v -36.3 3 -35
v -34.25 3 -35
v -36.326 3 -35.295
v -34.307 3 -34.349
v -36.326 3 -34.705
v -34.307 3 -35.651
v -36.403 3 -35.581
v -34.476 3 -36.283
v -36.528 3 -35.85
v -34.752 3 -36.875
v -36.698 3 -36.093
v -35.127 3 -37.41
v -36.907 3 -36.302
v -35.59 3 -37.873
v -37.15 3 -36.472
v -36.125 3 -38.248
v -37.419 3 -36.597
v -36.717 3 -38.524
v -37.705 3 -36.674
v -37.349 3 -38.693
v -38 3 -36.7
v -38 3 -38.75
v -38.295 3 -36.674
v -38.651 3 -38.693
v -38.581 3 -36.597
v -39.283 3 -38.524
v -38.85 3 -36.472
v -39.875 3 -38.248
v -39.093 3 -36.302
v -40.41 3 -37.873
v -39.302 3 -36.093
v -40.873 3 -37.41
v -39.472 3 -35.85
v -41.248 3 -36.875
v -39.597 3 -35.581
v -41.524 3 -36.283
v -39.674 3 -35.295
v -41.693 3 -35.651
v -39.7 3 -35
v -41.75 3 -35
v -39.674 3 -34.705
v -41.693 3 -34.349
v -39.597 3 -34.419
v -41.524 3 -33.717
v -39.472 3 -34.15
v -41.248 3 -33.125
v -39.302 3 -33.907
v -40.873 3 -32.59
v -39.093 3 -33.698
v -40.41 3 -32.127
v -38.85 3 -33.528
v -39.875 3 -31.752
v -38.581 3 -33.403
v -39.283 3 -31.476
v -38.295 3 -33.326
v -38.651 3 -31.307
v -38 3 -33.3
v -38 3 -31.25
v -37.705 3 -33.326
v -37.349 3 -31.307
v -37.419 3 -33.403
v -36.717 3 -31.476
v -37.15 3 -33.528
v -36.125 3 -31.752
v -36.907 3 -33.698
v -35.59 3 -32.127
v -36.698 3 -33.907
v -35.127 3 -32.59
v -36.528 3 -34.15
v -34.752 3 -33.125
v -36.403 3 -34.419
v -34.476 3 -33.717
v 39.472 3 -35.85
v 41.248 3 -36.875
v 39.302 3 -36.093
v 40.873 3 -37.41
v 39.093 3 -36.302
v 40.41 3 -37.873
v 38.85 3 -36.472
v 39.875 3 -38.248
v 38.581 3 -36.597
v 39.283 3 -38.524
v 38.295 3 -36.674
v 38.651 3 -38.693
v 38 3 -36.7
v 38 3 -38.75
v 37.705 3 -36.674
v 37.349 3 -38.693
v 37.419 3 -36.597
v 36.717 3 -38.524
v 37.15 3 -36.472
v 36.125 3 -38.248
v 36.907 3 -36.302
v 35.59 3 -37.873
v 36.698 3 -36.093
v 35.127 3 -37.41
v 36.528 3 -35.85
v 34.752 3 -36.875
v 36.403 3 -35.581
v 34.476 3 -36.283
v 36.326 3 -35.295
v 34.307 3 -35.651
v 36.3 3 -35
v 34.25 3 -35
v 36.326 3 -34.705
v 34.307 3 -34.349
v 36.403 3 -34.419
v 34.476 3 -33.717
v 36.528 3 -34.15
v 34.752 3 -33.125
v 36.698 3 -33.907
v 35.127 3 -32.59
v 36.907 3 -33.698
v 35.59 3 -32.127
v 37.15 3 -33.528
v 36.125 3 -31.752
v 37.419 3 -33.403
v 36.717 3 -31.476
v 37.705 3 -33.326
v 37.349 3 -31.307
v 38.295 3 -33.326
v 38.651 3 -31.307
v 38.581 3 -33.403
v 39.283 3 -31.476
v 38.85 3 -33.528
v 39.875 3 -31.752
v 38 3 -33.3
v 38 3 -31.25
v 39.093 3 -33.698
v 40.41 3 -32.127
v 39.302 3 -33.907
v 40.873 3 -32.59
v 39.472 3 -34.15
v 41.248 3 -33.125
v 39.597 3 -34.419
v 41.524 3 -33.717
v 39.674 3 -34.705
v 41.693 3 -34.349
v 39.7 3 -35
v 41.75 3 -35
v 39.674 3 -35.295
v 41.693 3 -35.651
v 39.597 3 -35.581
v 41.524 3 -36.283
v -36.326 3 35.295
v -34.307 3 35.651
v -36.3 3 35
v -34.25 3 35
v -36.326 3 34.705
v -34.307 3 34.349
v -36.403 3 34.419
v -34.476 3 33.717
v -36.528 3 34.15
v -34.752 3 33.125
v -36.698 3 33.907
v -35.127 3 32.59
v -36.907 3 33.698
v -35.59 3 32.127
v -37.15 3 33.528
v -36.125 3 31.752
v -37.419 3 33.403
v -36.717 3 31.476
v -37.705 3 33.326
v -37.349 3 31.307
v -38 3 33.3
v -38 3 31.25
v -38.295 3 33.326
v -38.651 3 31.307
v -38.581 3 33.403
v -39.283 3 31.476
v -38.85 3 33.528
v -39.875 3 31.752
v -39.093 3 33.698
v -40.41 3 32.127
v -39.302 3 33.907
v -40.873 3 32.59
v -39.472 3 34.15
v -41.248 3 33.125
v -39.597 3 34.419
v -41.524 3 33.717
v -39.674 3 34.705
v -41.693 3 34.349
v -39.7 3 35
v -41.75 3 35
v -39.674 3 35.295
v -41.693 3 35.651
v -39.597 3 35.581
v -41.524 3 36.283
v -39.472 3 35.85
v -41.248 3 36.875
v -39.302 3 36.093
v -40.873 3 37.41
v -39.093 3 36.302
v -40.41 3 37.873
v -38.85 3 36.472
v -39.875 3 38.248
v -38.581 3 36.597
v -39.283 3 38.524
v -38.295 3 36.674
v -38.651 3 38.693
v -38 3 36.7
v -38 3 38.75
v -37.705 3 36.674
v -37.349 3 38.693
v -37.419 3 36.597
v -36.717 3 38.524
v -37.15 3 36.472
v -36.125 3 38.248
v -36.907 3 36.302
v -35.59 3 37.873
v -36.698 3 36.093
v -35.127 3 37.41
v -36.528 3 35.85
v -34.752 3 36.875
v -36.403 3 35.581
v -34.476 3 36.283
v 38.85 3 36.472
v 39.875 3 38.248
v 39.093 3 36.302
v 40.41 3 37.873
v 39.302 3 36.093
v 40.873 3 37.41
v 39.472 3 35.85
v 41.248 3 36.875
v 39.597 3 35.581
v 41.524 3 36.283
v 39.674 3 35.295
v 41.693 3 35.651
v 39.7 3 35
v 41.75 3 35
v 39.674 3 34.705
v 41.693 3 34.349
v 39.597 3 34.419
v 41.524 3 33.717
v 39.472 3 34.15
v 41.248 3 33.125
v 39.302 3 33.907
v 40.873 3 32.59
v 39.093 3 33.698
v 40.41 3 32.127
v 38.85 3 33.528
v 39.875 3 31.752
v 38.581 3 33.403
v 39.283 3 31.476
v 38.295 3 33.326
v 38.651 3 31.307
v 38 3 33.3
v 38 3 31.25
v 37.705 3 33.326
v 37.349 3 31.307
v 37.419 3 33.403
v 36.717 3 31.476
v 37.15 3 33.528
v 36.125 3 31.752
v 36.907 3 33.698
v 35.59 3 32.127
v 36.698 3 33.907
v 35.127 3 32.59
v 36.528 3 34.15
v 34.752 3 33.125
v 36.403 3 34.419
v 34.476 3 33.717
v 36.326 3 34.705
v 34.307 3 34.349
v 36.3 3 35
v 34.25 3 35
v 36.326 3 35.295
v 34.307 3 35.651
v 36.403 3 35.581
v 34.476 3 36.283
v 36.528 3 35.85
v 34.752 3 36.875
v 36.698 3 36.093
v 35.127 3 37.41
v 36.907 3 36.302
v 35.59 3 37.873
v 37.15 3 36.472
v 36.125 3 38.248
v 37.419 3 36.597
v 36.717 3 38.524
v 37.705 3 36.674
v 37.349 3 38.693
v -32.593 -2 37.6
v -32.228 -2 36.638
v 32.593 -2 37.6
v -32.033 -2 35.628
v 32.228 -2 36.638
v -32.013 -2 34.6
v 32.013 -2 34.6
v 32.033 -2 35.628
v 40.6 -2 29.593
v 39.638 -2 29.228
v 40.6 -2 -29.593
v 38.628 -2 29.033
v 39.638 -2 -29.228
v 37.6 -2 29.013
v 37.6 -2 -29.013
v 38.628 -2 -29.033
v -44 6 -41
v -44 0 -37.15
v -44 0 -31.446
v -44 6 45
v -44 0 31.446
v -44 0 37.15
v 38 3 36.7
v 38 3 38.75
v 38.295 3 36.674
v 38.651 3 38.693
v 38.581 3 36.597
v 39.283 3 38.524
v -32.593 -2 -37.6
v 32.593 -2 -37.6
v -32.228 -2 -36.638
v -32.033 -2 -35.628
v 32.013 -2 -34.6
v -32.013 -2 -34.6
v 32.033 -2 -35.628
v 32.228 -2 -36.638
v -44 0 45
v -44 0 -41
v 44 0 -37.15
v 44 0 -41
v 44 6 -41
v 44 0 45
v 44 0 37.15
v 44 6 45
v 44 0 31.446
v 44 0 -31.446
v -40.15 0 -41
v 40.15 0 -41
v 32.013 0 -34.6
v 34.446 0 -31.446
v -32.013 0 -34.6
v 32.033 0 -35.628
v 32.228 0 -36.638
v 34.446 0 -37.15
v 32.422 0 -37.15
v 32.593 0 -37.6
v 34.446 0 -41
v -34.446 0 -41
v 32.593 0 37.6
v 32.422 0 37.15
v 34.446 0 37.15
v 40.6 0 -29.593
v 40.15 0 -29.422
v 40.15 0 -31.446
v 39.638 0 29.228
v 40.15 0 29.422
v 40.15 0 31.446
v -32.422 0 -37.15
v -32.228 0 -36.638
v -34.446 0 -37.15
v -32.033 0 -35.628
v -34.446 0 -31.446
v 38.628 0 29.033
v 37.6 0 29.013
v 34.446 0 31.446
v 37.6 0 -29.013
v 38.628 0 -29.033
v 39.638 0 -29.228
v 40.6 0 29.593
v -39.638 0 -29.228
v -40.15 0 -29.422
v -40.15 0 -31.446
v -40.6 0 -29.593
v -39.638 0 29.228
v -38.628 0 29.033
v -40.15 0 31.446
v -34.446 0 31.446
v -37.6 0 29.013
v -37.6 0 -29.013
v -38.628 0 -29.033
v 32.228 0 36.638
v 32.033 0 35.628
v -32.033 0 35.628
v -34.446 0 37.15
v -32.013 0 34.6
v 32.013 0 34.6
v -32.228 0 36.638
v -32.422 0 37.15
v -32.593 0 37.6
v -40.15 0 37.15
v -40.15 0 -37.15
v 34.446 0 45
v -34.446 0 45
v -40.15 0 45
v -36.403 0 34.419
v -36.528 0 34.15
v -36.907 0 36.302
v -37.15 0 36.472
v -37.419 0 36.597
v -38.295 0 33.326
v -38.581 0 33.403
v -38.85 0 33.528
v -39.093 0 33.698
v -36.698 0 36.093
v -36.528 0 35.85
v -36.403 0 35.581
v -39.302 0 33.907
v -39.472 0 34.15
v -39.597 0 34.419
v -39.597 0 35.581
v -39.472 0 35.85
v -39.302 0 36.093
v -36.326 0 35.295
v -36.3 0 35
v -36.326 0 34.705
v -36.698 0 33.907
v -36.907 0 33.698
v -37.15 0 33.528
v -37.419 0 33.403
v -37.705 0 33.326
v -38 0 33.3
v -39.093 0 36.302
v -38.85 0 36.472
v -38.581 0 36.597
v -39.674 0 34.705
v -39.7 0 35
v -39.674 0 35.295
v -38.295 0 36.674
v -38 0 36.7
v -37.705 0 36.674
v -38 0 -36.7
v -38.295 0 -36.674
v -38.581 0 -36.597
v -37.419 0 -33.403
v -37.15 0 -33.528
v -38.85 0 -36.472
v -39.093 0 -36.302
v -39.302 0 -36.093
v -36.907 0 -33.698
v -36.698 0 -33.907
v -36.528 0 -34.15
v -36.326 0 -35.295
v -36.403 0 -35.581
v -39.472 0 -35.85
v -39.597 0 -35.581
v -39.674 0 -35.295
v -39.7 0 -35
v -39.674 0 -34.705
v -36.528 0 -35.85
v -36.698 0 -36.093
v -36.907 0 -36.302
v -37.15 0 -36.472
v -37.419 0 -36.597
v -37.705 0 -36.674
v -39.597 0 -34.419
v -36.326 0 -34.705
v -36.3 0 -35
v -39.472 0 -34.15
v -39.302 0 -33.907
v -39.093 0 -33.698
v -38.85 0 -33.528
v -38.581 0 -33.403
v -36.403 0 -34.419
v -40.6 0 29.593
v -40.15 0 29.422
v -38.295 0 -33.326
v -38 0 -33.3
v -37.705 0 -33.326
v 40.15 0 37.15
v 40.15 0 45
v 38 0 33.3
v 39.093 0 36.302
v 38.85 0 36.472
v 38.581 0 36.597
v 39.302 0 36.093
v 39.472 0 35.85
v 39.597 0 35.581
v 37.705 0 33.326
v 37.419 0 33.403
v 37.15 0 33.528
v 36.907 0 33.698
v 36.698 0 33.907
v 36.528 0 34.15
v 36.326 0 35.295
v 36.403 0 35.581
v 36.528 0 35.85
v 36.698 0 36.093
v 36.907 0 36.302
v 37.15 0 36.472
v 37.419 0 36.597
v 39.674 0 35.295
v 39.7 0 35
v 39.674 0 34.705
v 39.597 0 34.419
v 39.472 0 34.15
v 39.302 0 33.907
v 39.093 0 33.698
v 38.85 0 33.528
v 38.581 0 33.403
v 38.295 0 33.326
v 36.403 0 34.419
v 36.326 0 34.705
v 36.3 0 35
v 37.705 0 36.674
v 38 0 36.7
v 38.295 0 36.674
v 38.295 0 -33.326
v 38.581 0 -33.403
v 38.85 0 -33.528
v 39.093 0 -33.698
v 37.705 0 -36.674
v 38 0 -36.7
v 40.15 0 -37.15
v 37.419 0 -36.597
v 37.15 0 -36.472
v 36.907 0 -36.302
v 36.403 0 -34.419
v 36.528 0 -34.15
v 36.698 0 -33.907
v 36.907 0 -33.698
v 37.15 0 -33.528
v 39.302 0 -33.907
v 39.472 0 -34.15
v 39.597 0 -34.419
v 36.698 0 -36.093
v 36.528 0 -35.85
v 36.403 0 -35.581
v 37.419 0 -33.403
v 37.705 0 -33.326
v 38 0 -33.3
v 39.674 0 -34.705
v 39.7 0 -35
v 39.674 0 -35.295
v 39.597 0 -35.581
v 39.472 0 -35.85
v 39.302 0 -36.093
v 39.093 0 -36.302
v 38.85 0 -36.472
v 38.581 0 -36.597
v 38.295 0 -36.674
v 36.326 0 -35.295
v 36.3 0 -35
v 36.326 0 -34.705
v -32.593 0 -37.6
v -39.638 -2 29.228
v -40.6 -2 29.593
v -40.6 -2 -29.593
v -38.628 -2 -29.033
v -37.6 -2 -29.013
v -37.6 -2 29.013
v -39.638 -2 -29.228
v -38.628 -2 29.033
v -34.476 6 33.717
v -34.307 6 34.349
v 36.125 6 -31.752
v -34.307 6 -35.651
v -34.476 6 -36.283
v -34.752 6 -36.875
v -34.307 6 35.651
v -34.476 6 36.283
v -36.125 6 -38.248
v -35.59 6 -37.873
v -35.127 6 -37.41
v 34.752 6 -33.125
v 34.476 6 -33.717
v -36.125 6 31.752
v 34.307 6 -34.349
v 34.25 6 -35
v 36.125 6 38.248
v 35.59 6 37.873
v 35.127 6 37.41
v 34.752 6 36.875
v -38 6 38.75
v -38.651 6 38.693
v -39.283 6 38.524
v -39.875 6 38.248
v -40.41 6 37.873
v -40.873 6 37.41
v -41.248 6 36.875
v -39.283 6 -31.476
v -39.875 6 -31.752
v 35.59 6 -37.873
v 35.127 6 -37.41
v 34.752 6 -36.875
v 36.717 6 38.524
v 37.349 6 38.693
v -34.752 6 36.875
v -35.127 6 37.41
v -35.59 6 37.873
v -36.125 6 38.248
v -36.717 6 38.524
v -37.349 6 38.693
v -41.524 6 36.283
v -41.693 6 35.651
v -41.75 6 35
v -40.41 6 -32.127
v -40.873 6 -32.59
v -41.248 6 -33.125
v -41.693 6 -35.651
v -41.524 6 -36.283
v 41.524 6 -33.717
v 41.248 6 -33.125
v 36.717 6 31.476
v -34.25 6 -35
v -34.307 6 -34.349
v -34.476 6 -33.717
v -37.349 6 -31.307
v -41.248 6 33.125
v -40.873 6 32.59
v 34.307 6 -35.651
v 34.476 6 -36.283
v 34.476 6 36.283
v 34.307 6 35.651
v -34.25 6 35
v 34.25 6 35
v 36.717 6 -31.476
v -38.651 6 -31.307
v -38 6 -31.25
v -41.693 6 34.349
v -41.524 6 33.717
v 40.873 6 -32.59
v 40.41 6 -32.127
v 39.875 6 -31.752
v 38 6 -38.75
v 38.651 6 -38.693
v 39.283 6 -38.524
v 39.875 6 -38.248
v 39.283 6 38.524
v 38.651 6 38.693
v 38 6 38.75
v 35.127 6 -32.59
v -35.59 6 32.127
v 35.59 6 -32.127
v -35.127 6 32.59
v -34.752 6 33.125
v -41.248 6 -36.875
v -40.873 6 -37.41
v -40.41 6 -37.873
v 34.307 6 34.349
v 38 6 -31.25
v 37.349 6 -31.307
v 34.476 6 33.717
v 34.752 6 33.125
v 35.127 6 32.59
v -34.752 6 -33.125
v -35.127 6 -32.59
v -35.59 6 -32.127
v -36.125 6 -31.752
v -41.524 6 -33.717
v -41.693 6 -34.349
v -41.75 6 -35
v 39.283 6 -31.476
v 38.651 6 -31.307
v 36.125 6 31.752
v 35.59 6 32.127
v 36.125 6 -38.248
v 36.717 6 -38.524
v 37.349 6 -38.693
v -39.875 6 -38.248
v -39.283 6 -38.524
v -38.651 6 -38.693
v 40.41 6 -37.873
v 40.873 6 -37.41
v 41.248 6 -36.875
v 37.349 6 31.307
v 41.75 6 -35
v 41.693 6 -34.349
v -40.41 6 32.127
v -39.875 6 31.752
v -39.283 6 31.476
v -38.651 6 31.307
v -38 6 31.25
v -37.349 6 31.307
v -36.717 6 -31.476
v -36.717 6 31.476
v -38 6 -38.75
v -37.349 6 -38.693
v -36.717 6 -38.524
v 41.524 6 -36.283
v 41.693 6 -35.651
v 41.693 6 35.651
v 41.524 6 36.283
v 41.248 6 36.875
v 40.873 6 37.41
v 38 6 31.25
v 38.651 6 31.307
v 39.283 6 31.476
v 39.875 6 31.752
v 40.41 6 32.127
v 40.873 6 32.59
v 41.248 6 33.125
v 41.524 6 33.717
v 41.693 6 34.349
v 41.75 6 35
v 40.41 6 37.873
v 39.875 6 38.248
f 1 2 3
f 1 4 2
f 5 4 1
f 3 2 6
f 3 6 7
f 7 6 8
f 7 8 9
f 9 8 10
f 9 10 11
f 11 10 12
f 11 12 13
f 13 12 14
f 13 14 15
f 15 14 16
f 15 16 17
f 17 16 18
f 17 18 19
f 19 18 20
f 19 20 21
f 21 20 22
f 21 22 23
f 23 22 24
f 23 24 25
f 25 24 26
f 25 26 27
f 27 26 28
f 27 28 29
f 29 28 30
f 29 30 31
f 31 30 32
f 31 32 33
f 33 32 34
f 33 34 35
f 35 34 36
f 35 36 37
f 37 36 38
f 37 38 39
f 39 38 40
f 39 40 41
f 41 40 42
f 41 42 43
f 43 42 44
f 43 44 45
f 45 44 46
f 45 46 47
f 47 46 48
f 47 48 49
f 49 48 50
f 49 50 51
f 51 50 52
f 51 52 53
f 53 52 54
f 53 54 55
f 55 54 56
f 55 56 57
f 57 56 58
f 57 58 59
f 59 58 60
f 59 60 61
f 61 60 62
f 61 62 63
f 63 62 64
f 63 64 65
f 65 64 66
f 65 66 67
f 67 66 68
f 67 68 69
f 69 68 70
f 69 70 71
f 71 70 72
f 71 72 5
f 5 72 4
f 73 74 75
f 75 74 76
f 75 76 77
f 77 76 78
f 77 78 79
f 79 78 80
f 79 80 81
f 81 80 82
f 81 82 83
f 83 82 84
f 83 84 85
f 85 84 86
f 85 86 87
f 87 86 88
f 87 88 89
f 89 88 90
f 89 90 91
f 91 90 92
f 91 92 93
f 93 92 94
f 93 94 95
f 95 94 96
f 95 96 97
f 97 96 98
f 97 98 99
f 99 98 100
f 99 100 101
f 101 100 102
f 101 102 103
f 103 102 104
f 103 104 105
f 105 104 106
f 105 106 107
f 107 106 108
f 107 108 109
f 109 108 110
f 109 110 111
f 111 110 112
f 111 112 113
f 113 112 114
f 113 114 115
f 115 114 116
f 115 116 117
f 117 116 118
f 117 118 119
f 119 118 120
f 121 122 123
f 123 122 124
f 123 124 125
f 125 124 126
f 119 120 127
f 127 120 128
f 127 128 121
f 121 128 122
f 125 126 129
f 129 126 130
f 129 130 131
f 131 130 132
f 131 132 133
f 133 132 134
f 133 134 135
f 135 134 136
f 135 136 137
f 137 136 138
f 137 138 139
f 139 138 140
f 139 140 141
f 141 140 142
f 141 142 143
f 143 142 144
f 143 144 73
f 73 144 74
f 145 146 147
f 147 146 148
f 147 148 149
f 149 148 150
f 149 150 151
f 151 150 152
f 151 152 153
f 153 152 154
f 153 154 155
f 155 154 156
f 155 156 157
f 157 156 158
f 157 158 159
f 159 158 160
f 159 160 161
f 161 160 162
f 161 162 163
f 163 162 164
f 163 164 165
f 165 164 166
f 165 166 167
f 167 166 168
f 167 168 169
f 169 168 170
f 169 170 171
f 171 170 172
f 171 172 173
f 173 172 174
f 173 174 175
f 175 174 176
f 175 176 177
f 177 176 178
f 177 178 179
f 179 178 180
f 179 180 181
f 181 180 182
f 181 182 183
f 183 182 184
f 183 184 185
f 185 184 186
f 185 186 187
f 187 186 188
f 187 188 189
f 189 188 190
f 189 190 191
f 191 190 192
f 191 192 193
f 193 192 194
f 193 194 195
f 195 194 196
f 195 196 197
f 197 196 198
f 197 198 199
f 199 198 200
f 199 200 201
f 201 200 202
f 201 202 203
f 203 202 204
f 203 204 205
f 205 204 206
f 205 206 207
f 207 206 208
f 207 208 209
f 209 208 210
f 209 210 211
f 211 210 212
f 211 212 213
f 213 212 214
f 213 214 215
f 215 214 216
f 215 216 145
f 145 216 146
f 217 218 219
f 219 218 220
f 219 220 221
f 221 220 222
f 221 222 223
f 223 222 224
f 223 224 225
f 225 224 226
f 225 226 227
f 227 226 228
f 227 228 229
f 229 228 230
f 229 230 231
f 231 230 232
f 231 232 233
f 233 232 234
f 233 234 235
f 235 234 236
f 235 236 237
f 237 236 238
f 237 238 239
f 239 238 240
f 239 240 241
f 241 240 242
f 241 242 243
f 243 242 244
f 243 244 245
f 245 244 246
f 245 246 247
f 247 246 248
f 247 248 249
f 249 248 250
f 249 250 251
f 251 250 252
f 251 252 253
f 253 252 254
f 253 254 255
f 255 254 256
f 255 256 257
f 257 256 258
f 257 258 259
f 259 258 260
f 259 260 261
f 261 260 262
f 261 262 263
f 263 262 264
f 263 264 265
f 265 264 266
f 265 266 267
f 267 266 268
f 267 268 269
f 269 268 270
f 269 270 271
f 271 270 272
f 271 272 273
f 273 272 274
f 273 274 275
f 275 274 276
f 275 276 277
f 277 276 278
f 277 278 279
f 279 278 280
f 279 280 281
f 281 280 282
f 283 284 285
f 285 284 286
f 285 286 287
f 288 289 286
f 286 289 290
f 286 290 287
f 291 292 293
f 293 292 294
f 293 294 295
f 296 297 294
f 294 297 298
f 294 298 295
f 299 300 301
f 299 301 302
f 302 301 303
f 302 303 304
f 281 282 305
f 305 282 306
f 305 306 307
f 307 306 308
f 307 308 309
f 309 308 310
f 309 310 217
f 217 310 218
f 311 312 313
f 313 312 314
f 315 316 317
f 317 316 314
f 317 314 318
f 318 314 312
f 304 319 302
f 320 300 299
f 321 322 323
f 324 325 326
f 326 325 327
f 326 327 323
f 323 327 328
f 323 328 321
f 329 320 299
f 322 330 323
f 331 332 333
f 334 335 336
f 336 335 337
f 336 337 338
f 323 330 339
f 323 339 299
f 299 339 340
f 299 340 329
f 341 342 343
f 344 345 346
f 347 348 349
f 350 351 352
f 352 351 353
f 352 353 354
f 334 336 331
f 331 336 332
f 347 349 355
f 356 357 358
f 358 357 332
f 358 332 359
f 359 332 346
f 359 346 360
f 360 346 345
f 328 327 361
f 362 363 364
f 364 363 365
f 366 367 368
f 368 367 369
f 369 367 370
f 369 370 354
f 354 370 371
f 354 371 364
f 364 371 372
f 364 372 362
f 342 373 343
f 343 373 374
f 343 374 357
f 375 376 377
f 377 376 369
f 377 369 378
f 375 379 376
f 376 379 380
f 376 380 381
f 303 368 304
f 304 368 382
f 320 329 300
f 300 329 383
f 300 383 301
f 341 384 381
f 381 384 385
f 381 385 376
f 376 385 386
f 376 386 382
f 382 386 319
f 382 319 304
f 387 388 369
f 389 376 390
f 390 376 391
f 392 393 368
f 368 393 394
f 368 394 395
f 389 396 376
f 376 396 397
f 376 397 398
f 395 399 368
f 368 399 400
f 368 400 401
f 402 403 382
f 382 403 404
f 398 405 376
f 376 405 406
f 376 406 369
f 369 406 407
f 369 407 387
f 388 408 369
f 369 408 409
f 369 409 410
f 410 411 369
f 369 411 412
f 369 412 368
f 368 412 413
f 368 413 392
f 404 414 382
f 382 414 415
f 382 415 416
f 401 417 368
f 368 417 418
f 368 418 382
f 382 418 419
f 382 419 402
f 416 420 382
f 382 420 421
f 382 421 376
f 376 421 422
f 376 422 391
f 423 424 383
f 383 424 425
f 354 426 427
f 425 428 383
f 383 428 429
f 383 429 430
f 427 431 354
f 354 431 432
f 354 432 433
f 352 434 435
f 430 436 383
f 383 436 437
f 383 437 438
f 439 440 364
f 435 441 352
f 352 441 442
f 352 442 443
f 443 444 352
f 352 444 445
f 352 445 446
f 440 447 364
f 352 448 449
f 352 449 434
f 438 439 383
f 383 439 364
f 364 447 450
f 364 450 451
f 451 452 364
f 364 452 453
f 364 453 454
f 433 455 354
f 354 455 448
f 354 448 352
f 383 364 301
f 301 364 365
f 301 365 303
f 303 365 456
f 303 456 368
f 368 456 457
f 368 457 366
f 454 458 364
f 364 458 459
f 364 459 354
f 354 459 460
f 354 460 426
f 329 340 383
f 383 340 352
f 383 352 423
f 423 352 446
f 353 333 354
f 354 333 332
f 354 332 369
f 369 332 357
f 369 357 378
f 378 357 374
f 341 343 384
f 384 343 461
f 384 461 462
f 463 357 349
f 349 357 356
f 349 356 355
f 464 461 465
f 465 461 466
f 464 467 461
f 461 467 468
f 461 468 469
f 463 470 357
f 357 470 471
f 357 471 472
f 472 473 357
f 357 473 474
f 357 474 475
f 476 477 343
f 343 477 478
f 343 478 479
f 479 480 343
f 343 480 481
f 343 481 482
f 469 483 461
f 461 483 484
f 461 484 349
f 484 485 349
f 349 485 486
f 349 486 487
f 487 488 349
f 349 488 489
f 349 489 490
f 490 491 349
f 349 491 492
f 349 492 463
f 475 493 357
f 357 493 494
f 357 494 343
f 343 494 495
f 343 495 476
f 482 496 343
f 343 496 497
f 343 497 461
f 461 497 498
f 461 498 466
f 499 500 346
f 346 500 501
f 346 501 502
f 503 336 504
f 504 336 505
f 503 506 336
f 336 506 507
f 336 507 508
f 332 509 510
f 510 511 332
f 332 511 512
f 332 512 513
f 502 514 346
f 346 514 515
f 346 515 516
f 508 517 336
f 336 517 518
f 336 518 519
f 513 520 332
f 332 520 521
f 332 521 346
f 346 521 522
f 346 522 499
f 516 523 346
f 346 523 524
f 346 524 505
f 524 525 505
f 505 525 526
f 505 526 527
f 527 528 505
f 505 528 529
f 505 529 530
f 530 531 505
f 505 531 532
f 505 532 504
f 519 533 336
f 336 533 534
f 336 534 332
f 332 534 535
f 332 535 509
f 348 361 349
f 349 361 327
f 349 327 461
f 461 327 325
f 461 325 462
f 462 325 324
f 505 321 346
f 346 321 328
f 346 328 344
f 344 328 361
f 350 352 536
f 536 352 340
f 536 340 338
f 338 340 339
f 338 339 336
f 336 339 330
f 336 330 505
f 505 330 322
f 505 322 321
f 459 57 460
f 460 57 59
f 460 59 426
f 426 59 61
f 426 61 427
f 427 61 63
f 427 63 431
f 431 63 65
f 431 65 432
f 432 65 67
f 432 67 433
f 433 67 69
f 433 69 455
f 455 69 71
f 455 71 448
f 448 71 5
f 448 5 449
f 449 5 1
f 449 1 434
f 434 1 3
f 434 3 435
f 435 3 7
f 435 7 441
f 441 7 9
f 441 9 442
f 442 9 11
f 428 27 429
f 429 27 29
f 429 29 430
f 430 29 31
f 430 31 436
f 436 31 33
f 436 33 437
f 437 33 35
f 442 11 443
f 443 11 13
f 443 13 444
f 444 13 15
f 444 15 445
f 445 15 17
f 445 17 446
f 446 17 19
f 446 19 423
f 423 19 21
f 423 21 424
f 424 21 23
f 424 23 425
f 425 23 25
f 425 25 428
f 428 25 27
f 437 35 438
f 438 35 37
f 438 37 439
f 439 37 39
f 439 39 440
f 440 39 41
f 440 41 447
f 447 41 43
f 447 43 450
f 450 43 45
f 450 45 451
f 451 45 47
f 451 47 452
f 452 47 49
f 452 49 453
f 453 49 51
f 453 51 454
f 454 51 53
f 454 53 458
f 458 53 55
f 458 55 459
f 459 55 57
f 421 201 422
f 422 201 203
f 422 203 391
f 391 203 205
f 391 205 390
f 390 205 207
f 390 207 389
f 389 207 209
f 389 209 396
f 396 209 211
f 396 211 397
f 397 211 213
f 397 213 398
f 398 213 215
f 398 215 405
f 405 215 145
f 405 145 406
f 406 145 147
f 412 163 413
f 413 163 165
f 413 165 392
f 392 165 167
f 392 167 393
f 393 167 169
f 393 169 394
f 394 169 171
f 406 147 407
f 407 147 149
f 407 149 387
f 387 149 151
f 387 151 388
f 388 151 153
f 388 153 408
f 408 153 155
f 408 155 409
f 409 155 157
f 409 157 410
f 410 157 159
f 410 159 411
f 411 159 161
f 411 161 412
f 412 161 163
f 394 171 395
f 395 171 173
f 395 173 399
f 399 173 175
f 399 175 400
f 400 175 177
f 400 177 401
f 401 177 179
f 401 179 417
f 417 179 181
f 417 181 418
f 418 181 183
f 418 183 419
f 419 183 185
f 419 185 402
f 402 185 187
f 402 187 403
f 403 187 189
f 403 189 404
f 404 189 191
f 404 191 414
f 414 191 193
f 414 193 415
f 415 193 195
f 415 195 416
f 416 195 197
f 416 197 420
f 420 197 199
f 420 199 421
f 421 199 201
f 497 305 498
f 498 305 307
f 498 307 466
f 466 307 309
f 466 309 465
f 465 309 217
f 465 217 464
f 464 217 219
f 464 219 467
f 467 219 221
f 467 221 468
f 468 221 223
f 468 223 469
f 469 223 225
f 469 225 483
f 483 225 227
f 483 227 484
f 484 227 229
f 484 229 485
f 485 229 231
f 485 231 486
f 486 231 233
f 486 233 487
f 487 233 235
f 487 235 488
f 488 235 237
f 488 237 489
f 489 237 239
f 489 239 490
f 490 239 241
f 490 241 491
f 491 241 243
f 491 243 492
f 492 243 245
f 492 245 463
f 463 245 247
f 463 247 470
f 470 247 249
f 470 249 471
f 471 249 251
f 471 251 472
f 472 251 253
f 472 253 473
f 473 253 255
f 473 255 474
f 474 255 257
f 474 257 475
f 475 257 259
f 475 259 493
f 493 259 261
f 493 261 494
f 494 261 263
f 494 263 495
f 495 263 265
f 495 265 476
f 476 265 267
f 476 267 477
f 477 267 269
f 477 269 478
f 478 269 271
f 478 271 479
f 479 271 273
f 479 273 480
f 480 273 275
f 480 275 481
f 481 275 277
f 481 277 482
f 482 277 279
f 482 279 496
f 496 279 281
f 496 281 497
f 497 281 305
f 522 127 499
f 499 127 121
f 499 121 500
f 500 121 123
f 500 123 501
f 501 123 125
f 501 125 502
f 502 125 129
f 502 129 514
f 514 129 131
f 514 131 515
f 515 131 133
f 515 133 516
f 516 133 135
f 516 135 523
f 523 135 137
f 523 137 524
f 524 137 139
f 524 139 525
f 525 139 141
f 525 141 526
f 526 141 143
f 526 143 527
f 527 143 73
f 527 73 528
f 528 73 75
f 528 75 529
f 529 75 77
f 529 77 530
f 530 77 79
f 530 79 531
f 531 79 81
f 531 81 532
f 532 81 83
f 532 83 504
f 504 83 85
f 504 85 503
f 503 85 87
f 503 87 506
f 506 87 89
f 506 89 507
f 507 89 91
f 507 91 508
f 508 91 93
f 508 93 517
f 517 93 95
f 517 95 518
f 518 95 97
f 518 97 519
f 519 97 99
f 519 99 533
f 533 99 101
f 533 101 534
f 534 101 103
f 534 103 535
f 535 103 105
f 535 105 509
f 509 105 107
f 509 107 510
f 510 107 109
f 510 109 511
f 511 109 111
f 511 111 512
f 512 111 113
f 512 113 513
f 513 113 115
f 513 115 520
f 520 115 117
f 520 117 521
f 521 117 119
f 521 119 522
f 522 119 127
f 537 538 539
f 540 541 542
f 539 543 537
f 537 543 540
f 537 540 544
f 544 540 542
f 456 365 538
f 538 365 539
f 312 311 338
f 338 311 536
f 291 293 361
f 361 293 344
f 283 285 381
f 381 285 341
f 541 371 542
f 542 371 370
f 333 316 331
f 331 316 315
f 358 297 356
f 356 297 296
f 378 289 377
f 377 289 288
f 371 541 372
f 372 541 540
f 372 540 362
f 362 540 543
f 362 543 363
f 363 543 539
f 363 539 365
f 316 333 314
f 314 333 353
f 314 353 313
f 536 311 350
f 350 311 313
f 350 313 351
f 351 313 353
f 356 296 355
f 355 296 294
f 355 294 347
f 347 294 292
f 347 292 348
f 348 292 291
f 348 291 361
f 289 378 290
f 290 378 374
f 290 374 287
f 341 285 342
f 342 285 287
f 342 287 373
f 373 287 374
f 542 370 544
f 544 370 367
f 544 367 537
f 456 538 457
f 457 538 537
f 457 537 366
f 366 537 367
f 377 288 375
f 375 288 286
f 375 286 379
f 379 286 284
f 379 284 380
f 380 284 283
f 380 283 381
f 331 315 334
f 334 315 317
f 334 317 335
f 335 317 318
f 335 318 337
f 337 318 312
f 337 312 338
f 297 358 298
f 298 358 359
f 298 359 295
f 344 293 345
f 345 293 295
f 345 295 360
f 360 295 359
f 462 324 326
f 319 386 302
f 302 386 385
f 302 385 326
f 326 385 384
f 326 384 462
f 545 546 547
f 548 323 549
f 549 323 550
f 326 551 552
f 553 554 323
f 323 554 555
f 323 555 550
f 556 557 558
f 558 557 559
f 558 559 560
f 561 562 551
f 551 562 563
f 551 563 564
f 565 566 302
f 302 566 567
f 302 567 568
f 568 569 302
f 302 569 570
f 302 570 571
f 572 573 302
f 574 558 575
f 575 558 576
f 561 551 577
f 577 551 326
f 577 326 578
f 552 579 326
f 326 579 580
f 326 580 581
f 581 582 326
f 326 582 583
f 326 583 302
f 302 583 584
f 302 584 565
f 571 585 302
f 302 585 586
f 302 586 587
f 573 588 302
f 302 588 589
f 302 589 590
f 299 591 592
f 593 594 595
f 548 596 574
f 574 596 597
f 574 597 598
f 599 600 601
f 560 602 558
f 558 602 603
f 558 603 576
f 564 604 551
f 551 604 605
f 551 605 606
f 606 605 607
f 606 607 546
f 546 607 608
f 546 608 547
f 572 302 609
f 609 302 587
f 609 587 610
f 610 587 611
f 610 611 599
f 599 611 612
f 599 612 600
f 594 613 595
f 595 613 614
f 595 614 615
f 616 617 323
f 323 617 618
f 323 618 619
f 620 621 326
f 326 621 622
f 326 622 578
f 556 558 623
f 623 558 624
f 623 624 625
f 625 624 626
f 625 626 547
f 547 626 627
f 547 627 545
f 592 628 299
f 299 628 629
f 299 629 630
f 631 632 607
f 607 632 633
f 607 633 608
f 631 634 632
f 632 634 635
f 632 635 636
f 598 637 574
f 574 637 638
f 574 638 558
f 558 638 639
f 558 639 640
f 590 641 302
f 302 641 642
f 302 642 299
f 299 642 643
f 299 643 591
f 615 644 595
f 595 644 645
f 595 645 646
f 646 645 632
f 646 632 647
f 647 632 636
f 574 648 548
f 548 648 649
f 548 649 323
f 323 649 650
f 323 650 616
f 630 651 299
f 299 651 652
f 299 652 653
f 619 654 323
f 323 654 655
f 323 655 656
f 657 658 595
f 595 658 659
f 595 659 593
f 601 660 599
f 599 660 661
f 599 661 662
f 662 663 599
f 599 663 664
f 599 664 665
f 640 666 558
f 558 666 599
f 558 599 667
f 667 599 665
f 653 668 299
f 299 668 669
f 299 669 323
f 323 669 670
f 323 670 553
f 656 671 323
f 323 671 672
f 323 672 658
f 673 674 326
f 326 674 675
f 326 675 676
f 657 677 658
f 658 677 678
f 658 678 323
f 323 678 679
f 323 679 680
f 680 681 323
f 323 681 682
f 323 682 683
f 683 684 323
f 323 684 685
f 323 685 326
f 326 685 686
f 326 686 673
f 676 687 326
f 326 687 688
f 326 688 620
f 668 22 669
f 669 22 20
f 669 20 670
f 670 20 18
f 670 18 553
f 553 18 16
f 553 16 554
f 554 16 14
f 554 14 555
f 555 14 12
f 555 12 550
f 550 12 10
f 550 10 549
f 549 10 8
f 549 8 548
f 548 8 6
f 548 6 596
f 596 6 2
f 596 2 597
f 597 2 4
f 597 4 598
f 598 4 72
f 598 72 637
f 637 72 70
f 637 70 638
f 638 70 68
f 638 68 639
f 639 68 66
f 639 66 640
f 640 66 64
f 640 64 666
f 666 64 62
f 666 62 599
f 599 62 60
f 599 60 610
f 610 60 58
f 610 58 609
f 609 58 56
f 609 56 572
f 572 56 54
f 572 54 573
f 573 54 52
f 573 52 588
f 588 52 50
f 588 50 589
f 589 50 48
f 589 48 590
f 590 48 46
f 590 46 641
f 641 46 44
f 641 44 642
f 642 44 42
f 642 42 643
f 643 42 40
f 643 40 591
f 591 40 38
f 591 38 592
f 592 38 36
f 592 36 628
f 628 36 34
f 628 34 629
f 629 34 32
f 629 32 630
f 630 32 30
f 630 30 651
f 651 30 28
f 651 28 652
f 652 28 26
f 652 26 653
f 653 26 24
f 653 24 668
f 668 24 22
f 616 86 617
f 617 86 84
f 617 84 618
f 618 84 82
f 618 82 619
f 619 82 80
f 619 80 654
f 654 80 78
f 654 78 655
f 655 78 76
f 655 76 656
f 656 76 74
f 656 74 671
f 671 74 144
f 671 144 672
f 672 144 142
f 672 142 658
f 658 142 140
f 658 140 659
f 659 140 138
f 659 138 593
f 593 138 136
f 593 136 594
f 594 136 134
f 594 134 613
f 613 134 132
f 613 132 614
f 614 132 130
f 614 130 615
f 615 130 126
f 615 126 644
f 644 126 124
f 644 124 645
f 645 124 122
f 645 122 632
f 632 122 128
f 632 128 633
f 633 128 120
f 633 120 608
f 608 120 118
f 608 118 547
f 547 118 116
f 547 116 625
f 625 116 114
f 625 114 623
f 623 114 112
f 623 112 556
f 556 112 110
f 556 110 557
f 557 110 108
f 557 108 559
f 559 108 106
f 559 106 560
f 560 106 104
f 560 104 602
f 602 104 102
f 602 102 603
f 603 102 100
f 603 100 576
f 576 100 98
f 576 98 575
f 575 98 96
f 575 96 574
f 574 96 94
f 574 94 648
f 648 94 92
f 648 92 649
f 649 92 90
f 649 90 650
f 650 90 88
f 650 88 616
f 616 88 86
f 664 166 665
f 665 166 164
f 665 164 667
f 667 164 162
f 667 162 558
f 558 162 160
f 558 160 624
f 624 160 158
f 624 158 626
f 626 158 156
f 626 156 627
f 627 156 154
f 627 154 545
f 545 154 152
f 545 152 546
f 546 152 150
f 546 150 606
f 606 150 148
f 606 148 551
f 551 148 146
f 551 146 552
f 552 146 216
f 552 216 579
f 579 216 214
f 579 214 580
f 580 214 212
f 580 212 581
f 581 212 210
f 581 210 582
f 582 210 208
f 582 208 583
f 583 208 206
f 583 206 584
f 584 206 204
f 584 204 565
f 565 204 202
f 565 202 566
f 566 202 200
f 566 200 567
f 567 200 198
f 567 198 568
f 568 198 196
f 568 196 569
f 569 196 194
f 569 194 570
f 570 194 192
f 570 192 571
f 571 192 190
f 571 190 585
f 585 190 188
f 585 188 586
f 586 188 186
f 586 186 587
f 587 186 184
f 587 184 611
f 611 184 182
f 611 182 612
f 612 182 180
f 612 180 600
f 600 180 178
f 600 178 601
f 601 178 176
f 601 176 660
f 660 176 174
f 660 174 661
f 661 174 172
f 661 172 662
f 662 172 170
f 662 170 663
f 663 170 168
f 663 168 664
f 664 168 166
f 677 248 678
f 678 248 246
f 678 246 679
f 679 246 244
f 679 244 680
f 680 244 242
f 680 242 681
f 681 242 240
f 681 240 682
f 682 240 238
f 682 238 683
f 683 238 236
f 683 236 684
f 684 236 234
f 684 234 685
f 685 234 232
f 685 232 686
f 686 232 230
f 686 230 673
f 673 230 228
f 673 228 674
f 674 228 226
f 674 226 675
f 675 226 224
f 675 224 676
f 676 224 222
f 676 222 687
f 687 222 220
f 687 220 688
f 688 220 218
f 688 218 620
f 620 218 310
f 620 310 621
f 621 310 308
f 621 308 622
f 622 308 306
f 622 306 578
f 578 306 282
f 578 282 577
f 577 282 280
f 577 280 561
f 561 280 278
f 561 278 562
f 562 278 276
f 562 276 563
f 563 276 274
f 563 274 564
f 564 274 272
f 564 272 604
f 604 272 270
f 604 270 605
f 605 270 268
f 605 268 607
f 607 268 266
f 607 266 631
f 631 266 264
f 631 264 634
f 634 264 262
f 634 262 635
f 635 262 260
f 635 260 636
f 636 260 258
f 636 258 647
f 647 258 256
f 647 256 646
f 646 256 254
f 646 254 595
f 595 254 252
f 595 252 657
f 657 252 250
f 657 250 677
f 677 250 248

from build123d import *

# Parameters (mm, degrees)
SKETCH1_W           = 88
SKETCH1_H           = 82
BOSS_EXTRUDE1_DEPTH = 3
SKETCH2_R           = 1.7
CUT_EXTRUDE1_DEPTH  = 4
SKETCH4_W           = 81.2
SKETCH4_H           = 75.2
SKETCH4_W_2         = 75.2
SKETCH4_H_2         = 69.2
BOSS_EXTRUDE2_DEPTH = 2
CUT_EXTRUDE5_START  = -3
SKETCH6_R           = 6
CUT_EXTRUDE5_DEPTH  = 3
SKETCH7_W           = 88
SKETCH7_H           = 3
BOSS_EXTRUDE3_DEPTH = 4
SKETCH8_R           = 3.75
BOSS_EXTRUDE4_DEPTH = 3


with BuildPart() as part:
    # Sketch1 → Boss-Extrude1 (new body)
    with BuildSketch(Plane(origin=(0, 0, 0), x_dir=(1, 0, 0), z_dir=(0, 1, 0))):
        Rectangle(SKETCH1_W, SKETCH1_H)
    extrude(amount=BOSS_EXTRUDE1_DEPTH)

    # Sketch2 → Cut-Extrude1 (cut, through all)
    with BuildSketch(Plane(origin=(0, 3, 0), x_dir=(1, 0, 0), z_dir=(0, 1, 0))):
        with Locations((-38, 35)):
            Circle(SKETCH2_R)
        with Locations((38, 35)):
            Circle(SKETCH2_R)
        with Locations((38, -35)):
            Circle(SKETCH2_R)
        with Locations((-38, -35)):
            Circle(SKETCH2_R)
    extrude(amount=-CUT_EXTRUDE1_DEPTH, mode=Mode.SUBTRACT)

    # Sketch4 → Boss-Extrude2 (add)
    with BuildSketch(Plane.XZ):
        Rectangle(SKETCH4_W, SKETCH4_H)
        Rectangle(SKETCH4_W_2, SKETCH4_H_2, mode=Mode.SUBTRACT)
    extrude(amount=BOSS_EXTRUDE2_DEPTH)

    # Sketch6 → Cut-Extrude5 (cut, through all)
    with BuildSketch(Plane(origin=(0, 3, 0), x_dir=(1, 0, 0), z_dir=(0, 1, 0)).offset(CUT_EXTRUDE5_START)):
        with Locations((-38, 35)):
            Circle(SKETCH6_R)
        with Locations((-38, -35)):
            Circle(SKETCH6_R)
        with Locations((38, -35)):
            Circle(SKETCH6_R)
        with Locations((38, 35)):
            Circle(SKETCH6_R)
    extrude(amount=-CUT_EXTRUDE5_DEPTH, mode=Mode.SUBTRACT)

    # Sketch7 → Boss-Extrude3 (add)
    with BuildSketch(Plane.XY.offset(41)):
        with Locations((0, 1.5)):
            Rectangle(SKETCH7_W, SKETCH7_H)
    extrude(amount=BOSS_EXTRUDE3_DEPTH)

    # Sketch8 → Boss-Extrude4 (add)
    with BuildSketch(Plane(origin=(0, 3, 0), x_dir=(1, 0, 0), z_dir=(0, 1, 0))):
        Polygon((-44, -41), (-44, -45), (44, -45), (44, -41), (44, 41), (-44, 41), align=None)
        with Locations((-38, 35)):
            Circle(SKETCH8_R, mode=Mode.SUBTRACT)
        with Locations((38, 35)):
            Circle(SKETCH8_R, mode=Mode.SUBTRACT)
        with Locations((-38, -35)):
            Circle(SKETCH8_R, mode=Mode.SUBTRACT)
        with Locations((38, -35)):
            Circle(SKETCH8_R, mode=Mode.SUBTRACT)
    extrude(amount=BOSS_EXTRUDE4_DEPTH)


solid = part.part
